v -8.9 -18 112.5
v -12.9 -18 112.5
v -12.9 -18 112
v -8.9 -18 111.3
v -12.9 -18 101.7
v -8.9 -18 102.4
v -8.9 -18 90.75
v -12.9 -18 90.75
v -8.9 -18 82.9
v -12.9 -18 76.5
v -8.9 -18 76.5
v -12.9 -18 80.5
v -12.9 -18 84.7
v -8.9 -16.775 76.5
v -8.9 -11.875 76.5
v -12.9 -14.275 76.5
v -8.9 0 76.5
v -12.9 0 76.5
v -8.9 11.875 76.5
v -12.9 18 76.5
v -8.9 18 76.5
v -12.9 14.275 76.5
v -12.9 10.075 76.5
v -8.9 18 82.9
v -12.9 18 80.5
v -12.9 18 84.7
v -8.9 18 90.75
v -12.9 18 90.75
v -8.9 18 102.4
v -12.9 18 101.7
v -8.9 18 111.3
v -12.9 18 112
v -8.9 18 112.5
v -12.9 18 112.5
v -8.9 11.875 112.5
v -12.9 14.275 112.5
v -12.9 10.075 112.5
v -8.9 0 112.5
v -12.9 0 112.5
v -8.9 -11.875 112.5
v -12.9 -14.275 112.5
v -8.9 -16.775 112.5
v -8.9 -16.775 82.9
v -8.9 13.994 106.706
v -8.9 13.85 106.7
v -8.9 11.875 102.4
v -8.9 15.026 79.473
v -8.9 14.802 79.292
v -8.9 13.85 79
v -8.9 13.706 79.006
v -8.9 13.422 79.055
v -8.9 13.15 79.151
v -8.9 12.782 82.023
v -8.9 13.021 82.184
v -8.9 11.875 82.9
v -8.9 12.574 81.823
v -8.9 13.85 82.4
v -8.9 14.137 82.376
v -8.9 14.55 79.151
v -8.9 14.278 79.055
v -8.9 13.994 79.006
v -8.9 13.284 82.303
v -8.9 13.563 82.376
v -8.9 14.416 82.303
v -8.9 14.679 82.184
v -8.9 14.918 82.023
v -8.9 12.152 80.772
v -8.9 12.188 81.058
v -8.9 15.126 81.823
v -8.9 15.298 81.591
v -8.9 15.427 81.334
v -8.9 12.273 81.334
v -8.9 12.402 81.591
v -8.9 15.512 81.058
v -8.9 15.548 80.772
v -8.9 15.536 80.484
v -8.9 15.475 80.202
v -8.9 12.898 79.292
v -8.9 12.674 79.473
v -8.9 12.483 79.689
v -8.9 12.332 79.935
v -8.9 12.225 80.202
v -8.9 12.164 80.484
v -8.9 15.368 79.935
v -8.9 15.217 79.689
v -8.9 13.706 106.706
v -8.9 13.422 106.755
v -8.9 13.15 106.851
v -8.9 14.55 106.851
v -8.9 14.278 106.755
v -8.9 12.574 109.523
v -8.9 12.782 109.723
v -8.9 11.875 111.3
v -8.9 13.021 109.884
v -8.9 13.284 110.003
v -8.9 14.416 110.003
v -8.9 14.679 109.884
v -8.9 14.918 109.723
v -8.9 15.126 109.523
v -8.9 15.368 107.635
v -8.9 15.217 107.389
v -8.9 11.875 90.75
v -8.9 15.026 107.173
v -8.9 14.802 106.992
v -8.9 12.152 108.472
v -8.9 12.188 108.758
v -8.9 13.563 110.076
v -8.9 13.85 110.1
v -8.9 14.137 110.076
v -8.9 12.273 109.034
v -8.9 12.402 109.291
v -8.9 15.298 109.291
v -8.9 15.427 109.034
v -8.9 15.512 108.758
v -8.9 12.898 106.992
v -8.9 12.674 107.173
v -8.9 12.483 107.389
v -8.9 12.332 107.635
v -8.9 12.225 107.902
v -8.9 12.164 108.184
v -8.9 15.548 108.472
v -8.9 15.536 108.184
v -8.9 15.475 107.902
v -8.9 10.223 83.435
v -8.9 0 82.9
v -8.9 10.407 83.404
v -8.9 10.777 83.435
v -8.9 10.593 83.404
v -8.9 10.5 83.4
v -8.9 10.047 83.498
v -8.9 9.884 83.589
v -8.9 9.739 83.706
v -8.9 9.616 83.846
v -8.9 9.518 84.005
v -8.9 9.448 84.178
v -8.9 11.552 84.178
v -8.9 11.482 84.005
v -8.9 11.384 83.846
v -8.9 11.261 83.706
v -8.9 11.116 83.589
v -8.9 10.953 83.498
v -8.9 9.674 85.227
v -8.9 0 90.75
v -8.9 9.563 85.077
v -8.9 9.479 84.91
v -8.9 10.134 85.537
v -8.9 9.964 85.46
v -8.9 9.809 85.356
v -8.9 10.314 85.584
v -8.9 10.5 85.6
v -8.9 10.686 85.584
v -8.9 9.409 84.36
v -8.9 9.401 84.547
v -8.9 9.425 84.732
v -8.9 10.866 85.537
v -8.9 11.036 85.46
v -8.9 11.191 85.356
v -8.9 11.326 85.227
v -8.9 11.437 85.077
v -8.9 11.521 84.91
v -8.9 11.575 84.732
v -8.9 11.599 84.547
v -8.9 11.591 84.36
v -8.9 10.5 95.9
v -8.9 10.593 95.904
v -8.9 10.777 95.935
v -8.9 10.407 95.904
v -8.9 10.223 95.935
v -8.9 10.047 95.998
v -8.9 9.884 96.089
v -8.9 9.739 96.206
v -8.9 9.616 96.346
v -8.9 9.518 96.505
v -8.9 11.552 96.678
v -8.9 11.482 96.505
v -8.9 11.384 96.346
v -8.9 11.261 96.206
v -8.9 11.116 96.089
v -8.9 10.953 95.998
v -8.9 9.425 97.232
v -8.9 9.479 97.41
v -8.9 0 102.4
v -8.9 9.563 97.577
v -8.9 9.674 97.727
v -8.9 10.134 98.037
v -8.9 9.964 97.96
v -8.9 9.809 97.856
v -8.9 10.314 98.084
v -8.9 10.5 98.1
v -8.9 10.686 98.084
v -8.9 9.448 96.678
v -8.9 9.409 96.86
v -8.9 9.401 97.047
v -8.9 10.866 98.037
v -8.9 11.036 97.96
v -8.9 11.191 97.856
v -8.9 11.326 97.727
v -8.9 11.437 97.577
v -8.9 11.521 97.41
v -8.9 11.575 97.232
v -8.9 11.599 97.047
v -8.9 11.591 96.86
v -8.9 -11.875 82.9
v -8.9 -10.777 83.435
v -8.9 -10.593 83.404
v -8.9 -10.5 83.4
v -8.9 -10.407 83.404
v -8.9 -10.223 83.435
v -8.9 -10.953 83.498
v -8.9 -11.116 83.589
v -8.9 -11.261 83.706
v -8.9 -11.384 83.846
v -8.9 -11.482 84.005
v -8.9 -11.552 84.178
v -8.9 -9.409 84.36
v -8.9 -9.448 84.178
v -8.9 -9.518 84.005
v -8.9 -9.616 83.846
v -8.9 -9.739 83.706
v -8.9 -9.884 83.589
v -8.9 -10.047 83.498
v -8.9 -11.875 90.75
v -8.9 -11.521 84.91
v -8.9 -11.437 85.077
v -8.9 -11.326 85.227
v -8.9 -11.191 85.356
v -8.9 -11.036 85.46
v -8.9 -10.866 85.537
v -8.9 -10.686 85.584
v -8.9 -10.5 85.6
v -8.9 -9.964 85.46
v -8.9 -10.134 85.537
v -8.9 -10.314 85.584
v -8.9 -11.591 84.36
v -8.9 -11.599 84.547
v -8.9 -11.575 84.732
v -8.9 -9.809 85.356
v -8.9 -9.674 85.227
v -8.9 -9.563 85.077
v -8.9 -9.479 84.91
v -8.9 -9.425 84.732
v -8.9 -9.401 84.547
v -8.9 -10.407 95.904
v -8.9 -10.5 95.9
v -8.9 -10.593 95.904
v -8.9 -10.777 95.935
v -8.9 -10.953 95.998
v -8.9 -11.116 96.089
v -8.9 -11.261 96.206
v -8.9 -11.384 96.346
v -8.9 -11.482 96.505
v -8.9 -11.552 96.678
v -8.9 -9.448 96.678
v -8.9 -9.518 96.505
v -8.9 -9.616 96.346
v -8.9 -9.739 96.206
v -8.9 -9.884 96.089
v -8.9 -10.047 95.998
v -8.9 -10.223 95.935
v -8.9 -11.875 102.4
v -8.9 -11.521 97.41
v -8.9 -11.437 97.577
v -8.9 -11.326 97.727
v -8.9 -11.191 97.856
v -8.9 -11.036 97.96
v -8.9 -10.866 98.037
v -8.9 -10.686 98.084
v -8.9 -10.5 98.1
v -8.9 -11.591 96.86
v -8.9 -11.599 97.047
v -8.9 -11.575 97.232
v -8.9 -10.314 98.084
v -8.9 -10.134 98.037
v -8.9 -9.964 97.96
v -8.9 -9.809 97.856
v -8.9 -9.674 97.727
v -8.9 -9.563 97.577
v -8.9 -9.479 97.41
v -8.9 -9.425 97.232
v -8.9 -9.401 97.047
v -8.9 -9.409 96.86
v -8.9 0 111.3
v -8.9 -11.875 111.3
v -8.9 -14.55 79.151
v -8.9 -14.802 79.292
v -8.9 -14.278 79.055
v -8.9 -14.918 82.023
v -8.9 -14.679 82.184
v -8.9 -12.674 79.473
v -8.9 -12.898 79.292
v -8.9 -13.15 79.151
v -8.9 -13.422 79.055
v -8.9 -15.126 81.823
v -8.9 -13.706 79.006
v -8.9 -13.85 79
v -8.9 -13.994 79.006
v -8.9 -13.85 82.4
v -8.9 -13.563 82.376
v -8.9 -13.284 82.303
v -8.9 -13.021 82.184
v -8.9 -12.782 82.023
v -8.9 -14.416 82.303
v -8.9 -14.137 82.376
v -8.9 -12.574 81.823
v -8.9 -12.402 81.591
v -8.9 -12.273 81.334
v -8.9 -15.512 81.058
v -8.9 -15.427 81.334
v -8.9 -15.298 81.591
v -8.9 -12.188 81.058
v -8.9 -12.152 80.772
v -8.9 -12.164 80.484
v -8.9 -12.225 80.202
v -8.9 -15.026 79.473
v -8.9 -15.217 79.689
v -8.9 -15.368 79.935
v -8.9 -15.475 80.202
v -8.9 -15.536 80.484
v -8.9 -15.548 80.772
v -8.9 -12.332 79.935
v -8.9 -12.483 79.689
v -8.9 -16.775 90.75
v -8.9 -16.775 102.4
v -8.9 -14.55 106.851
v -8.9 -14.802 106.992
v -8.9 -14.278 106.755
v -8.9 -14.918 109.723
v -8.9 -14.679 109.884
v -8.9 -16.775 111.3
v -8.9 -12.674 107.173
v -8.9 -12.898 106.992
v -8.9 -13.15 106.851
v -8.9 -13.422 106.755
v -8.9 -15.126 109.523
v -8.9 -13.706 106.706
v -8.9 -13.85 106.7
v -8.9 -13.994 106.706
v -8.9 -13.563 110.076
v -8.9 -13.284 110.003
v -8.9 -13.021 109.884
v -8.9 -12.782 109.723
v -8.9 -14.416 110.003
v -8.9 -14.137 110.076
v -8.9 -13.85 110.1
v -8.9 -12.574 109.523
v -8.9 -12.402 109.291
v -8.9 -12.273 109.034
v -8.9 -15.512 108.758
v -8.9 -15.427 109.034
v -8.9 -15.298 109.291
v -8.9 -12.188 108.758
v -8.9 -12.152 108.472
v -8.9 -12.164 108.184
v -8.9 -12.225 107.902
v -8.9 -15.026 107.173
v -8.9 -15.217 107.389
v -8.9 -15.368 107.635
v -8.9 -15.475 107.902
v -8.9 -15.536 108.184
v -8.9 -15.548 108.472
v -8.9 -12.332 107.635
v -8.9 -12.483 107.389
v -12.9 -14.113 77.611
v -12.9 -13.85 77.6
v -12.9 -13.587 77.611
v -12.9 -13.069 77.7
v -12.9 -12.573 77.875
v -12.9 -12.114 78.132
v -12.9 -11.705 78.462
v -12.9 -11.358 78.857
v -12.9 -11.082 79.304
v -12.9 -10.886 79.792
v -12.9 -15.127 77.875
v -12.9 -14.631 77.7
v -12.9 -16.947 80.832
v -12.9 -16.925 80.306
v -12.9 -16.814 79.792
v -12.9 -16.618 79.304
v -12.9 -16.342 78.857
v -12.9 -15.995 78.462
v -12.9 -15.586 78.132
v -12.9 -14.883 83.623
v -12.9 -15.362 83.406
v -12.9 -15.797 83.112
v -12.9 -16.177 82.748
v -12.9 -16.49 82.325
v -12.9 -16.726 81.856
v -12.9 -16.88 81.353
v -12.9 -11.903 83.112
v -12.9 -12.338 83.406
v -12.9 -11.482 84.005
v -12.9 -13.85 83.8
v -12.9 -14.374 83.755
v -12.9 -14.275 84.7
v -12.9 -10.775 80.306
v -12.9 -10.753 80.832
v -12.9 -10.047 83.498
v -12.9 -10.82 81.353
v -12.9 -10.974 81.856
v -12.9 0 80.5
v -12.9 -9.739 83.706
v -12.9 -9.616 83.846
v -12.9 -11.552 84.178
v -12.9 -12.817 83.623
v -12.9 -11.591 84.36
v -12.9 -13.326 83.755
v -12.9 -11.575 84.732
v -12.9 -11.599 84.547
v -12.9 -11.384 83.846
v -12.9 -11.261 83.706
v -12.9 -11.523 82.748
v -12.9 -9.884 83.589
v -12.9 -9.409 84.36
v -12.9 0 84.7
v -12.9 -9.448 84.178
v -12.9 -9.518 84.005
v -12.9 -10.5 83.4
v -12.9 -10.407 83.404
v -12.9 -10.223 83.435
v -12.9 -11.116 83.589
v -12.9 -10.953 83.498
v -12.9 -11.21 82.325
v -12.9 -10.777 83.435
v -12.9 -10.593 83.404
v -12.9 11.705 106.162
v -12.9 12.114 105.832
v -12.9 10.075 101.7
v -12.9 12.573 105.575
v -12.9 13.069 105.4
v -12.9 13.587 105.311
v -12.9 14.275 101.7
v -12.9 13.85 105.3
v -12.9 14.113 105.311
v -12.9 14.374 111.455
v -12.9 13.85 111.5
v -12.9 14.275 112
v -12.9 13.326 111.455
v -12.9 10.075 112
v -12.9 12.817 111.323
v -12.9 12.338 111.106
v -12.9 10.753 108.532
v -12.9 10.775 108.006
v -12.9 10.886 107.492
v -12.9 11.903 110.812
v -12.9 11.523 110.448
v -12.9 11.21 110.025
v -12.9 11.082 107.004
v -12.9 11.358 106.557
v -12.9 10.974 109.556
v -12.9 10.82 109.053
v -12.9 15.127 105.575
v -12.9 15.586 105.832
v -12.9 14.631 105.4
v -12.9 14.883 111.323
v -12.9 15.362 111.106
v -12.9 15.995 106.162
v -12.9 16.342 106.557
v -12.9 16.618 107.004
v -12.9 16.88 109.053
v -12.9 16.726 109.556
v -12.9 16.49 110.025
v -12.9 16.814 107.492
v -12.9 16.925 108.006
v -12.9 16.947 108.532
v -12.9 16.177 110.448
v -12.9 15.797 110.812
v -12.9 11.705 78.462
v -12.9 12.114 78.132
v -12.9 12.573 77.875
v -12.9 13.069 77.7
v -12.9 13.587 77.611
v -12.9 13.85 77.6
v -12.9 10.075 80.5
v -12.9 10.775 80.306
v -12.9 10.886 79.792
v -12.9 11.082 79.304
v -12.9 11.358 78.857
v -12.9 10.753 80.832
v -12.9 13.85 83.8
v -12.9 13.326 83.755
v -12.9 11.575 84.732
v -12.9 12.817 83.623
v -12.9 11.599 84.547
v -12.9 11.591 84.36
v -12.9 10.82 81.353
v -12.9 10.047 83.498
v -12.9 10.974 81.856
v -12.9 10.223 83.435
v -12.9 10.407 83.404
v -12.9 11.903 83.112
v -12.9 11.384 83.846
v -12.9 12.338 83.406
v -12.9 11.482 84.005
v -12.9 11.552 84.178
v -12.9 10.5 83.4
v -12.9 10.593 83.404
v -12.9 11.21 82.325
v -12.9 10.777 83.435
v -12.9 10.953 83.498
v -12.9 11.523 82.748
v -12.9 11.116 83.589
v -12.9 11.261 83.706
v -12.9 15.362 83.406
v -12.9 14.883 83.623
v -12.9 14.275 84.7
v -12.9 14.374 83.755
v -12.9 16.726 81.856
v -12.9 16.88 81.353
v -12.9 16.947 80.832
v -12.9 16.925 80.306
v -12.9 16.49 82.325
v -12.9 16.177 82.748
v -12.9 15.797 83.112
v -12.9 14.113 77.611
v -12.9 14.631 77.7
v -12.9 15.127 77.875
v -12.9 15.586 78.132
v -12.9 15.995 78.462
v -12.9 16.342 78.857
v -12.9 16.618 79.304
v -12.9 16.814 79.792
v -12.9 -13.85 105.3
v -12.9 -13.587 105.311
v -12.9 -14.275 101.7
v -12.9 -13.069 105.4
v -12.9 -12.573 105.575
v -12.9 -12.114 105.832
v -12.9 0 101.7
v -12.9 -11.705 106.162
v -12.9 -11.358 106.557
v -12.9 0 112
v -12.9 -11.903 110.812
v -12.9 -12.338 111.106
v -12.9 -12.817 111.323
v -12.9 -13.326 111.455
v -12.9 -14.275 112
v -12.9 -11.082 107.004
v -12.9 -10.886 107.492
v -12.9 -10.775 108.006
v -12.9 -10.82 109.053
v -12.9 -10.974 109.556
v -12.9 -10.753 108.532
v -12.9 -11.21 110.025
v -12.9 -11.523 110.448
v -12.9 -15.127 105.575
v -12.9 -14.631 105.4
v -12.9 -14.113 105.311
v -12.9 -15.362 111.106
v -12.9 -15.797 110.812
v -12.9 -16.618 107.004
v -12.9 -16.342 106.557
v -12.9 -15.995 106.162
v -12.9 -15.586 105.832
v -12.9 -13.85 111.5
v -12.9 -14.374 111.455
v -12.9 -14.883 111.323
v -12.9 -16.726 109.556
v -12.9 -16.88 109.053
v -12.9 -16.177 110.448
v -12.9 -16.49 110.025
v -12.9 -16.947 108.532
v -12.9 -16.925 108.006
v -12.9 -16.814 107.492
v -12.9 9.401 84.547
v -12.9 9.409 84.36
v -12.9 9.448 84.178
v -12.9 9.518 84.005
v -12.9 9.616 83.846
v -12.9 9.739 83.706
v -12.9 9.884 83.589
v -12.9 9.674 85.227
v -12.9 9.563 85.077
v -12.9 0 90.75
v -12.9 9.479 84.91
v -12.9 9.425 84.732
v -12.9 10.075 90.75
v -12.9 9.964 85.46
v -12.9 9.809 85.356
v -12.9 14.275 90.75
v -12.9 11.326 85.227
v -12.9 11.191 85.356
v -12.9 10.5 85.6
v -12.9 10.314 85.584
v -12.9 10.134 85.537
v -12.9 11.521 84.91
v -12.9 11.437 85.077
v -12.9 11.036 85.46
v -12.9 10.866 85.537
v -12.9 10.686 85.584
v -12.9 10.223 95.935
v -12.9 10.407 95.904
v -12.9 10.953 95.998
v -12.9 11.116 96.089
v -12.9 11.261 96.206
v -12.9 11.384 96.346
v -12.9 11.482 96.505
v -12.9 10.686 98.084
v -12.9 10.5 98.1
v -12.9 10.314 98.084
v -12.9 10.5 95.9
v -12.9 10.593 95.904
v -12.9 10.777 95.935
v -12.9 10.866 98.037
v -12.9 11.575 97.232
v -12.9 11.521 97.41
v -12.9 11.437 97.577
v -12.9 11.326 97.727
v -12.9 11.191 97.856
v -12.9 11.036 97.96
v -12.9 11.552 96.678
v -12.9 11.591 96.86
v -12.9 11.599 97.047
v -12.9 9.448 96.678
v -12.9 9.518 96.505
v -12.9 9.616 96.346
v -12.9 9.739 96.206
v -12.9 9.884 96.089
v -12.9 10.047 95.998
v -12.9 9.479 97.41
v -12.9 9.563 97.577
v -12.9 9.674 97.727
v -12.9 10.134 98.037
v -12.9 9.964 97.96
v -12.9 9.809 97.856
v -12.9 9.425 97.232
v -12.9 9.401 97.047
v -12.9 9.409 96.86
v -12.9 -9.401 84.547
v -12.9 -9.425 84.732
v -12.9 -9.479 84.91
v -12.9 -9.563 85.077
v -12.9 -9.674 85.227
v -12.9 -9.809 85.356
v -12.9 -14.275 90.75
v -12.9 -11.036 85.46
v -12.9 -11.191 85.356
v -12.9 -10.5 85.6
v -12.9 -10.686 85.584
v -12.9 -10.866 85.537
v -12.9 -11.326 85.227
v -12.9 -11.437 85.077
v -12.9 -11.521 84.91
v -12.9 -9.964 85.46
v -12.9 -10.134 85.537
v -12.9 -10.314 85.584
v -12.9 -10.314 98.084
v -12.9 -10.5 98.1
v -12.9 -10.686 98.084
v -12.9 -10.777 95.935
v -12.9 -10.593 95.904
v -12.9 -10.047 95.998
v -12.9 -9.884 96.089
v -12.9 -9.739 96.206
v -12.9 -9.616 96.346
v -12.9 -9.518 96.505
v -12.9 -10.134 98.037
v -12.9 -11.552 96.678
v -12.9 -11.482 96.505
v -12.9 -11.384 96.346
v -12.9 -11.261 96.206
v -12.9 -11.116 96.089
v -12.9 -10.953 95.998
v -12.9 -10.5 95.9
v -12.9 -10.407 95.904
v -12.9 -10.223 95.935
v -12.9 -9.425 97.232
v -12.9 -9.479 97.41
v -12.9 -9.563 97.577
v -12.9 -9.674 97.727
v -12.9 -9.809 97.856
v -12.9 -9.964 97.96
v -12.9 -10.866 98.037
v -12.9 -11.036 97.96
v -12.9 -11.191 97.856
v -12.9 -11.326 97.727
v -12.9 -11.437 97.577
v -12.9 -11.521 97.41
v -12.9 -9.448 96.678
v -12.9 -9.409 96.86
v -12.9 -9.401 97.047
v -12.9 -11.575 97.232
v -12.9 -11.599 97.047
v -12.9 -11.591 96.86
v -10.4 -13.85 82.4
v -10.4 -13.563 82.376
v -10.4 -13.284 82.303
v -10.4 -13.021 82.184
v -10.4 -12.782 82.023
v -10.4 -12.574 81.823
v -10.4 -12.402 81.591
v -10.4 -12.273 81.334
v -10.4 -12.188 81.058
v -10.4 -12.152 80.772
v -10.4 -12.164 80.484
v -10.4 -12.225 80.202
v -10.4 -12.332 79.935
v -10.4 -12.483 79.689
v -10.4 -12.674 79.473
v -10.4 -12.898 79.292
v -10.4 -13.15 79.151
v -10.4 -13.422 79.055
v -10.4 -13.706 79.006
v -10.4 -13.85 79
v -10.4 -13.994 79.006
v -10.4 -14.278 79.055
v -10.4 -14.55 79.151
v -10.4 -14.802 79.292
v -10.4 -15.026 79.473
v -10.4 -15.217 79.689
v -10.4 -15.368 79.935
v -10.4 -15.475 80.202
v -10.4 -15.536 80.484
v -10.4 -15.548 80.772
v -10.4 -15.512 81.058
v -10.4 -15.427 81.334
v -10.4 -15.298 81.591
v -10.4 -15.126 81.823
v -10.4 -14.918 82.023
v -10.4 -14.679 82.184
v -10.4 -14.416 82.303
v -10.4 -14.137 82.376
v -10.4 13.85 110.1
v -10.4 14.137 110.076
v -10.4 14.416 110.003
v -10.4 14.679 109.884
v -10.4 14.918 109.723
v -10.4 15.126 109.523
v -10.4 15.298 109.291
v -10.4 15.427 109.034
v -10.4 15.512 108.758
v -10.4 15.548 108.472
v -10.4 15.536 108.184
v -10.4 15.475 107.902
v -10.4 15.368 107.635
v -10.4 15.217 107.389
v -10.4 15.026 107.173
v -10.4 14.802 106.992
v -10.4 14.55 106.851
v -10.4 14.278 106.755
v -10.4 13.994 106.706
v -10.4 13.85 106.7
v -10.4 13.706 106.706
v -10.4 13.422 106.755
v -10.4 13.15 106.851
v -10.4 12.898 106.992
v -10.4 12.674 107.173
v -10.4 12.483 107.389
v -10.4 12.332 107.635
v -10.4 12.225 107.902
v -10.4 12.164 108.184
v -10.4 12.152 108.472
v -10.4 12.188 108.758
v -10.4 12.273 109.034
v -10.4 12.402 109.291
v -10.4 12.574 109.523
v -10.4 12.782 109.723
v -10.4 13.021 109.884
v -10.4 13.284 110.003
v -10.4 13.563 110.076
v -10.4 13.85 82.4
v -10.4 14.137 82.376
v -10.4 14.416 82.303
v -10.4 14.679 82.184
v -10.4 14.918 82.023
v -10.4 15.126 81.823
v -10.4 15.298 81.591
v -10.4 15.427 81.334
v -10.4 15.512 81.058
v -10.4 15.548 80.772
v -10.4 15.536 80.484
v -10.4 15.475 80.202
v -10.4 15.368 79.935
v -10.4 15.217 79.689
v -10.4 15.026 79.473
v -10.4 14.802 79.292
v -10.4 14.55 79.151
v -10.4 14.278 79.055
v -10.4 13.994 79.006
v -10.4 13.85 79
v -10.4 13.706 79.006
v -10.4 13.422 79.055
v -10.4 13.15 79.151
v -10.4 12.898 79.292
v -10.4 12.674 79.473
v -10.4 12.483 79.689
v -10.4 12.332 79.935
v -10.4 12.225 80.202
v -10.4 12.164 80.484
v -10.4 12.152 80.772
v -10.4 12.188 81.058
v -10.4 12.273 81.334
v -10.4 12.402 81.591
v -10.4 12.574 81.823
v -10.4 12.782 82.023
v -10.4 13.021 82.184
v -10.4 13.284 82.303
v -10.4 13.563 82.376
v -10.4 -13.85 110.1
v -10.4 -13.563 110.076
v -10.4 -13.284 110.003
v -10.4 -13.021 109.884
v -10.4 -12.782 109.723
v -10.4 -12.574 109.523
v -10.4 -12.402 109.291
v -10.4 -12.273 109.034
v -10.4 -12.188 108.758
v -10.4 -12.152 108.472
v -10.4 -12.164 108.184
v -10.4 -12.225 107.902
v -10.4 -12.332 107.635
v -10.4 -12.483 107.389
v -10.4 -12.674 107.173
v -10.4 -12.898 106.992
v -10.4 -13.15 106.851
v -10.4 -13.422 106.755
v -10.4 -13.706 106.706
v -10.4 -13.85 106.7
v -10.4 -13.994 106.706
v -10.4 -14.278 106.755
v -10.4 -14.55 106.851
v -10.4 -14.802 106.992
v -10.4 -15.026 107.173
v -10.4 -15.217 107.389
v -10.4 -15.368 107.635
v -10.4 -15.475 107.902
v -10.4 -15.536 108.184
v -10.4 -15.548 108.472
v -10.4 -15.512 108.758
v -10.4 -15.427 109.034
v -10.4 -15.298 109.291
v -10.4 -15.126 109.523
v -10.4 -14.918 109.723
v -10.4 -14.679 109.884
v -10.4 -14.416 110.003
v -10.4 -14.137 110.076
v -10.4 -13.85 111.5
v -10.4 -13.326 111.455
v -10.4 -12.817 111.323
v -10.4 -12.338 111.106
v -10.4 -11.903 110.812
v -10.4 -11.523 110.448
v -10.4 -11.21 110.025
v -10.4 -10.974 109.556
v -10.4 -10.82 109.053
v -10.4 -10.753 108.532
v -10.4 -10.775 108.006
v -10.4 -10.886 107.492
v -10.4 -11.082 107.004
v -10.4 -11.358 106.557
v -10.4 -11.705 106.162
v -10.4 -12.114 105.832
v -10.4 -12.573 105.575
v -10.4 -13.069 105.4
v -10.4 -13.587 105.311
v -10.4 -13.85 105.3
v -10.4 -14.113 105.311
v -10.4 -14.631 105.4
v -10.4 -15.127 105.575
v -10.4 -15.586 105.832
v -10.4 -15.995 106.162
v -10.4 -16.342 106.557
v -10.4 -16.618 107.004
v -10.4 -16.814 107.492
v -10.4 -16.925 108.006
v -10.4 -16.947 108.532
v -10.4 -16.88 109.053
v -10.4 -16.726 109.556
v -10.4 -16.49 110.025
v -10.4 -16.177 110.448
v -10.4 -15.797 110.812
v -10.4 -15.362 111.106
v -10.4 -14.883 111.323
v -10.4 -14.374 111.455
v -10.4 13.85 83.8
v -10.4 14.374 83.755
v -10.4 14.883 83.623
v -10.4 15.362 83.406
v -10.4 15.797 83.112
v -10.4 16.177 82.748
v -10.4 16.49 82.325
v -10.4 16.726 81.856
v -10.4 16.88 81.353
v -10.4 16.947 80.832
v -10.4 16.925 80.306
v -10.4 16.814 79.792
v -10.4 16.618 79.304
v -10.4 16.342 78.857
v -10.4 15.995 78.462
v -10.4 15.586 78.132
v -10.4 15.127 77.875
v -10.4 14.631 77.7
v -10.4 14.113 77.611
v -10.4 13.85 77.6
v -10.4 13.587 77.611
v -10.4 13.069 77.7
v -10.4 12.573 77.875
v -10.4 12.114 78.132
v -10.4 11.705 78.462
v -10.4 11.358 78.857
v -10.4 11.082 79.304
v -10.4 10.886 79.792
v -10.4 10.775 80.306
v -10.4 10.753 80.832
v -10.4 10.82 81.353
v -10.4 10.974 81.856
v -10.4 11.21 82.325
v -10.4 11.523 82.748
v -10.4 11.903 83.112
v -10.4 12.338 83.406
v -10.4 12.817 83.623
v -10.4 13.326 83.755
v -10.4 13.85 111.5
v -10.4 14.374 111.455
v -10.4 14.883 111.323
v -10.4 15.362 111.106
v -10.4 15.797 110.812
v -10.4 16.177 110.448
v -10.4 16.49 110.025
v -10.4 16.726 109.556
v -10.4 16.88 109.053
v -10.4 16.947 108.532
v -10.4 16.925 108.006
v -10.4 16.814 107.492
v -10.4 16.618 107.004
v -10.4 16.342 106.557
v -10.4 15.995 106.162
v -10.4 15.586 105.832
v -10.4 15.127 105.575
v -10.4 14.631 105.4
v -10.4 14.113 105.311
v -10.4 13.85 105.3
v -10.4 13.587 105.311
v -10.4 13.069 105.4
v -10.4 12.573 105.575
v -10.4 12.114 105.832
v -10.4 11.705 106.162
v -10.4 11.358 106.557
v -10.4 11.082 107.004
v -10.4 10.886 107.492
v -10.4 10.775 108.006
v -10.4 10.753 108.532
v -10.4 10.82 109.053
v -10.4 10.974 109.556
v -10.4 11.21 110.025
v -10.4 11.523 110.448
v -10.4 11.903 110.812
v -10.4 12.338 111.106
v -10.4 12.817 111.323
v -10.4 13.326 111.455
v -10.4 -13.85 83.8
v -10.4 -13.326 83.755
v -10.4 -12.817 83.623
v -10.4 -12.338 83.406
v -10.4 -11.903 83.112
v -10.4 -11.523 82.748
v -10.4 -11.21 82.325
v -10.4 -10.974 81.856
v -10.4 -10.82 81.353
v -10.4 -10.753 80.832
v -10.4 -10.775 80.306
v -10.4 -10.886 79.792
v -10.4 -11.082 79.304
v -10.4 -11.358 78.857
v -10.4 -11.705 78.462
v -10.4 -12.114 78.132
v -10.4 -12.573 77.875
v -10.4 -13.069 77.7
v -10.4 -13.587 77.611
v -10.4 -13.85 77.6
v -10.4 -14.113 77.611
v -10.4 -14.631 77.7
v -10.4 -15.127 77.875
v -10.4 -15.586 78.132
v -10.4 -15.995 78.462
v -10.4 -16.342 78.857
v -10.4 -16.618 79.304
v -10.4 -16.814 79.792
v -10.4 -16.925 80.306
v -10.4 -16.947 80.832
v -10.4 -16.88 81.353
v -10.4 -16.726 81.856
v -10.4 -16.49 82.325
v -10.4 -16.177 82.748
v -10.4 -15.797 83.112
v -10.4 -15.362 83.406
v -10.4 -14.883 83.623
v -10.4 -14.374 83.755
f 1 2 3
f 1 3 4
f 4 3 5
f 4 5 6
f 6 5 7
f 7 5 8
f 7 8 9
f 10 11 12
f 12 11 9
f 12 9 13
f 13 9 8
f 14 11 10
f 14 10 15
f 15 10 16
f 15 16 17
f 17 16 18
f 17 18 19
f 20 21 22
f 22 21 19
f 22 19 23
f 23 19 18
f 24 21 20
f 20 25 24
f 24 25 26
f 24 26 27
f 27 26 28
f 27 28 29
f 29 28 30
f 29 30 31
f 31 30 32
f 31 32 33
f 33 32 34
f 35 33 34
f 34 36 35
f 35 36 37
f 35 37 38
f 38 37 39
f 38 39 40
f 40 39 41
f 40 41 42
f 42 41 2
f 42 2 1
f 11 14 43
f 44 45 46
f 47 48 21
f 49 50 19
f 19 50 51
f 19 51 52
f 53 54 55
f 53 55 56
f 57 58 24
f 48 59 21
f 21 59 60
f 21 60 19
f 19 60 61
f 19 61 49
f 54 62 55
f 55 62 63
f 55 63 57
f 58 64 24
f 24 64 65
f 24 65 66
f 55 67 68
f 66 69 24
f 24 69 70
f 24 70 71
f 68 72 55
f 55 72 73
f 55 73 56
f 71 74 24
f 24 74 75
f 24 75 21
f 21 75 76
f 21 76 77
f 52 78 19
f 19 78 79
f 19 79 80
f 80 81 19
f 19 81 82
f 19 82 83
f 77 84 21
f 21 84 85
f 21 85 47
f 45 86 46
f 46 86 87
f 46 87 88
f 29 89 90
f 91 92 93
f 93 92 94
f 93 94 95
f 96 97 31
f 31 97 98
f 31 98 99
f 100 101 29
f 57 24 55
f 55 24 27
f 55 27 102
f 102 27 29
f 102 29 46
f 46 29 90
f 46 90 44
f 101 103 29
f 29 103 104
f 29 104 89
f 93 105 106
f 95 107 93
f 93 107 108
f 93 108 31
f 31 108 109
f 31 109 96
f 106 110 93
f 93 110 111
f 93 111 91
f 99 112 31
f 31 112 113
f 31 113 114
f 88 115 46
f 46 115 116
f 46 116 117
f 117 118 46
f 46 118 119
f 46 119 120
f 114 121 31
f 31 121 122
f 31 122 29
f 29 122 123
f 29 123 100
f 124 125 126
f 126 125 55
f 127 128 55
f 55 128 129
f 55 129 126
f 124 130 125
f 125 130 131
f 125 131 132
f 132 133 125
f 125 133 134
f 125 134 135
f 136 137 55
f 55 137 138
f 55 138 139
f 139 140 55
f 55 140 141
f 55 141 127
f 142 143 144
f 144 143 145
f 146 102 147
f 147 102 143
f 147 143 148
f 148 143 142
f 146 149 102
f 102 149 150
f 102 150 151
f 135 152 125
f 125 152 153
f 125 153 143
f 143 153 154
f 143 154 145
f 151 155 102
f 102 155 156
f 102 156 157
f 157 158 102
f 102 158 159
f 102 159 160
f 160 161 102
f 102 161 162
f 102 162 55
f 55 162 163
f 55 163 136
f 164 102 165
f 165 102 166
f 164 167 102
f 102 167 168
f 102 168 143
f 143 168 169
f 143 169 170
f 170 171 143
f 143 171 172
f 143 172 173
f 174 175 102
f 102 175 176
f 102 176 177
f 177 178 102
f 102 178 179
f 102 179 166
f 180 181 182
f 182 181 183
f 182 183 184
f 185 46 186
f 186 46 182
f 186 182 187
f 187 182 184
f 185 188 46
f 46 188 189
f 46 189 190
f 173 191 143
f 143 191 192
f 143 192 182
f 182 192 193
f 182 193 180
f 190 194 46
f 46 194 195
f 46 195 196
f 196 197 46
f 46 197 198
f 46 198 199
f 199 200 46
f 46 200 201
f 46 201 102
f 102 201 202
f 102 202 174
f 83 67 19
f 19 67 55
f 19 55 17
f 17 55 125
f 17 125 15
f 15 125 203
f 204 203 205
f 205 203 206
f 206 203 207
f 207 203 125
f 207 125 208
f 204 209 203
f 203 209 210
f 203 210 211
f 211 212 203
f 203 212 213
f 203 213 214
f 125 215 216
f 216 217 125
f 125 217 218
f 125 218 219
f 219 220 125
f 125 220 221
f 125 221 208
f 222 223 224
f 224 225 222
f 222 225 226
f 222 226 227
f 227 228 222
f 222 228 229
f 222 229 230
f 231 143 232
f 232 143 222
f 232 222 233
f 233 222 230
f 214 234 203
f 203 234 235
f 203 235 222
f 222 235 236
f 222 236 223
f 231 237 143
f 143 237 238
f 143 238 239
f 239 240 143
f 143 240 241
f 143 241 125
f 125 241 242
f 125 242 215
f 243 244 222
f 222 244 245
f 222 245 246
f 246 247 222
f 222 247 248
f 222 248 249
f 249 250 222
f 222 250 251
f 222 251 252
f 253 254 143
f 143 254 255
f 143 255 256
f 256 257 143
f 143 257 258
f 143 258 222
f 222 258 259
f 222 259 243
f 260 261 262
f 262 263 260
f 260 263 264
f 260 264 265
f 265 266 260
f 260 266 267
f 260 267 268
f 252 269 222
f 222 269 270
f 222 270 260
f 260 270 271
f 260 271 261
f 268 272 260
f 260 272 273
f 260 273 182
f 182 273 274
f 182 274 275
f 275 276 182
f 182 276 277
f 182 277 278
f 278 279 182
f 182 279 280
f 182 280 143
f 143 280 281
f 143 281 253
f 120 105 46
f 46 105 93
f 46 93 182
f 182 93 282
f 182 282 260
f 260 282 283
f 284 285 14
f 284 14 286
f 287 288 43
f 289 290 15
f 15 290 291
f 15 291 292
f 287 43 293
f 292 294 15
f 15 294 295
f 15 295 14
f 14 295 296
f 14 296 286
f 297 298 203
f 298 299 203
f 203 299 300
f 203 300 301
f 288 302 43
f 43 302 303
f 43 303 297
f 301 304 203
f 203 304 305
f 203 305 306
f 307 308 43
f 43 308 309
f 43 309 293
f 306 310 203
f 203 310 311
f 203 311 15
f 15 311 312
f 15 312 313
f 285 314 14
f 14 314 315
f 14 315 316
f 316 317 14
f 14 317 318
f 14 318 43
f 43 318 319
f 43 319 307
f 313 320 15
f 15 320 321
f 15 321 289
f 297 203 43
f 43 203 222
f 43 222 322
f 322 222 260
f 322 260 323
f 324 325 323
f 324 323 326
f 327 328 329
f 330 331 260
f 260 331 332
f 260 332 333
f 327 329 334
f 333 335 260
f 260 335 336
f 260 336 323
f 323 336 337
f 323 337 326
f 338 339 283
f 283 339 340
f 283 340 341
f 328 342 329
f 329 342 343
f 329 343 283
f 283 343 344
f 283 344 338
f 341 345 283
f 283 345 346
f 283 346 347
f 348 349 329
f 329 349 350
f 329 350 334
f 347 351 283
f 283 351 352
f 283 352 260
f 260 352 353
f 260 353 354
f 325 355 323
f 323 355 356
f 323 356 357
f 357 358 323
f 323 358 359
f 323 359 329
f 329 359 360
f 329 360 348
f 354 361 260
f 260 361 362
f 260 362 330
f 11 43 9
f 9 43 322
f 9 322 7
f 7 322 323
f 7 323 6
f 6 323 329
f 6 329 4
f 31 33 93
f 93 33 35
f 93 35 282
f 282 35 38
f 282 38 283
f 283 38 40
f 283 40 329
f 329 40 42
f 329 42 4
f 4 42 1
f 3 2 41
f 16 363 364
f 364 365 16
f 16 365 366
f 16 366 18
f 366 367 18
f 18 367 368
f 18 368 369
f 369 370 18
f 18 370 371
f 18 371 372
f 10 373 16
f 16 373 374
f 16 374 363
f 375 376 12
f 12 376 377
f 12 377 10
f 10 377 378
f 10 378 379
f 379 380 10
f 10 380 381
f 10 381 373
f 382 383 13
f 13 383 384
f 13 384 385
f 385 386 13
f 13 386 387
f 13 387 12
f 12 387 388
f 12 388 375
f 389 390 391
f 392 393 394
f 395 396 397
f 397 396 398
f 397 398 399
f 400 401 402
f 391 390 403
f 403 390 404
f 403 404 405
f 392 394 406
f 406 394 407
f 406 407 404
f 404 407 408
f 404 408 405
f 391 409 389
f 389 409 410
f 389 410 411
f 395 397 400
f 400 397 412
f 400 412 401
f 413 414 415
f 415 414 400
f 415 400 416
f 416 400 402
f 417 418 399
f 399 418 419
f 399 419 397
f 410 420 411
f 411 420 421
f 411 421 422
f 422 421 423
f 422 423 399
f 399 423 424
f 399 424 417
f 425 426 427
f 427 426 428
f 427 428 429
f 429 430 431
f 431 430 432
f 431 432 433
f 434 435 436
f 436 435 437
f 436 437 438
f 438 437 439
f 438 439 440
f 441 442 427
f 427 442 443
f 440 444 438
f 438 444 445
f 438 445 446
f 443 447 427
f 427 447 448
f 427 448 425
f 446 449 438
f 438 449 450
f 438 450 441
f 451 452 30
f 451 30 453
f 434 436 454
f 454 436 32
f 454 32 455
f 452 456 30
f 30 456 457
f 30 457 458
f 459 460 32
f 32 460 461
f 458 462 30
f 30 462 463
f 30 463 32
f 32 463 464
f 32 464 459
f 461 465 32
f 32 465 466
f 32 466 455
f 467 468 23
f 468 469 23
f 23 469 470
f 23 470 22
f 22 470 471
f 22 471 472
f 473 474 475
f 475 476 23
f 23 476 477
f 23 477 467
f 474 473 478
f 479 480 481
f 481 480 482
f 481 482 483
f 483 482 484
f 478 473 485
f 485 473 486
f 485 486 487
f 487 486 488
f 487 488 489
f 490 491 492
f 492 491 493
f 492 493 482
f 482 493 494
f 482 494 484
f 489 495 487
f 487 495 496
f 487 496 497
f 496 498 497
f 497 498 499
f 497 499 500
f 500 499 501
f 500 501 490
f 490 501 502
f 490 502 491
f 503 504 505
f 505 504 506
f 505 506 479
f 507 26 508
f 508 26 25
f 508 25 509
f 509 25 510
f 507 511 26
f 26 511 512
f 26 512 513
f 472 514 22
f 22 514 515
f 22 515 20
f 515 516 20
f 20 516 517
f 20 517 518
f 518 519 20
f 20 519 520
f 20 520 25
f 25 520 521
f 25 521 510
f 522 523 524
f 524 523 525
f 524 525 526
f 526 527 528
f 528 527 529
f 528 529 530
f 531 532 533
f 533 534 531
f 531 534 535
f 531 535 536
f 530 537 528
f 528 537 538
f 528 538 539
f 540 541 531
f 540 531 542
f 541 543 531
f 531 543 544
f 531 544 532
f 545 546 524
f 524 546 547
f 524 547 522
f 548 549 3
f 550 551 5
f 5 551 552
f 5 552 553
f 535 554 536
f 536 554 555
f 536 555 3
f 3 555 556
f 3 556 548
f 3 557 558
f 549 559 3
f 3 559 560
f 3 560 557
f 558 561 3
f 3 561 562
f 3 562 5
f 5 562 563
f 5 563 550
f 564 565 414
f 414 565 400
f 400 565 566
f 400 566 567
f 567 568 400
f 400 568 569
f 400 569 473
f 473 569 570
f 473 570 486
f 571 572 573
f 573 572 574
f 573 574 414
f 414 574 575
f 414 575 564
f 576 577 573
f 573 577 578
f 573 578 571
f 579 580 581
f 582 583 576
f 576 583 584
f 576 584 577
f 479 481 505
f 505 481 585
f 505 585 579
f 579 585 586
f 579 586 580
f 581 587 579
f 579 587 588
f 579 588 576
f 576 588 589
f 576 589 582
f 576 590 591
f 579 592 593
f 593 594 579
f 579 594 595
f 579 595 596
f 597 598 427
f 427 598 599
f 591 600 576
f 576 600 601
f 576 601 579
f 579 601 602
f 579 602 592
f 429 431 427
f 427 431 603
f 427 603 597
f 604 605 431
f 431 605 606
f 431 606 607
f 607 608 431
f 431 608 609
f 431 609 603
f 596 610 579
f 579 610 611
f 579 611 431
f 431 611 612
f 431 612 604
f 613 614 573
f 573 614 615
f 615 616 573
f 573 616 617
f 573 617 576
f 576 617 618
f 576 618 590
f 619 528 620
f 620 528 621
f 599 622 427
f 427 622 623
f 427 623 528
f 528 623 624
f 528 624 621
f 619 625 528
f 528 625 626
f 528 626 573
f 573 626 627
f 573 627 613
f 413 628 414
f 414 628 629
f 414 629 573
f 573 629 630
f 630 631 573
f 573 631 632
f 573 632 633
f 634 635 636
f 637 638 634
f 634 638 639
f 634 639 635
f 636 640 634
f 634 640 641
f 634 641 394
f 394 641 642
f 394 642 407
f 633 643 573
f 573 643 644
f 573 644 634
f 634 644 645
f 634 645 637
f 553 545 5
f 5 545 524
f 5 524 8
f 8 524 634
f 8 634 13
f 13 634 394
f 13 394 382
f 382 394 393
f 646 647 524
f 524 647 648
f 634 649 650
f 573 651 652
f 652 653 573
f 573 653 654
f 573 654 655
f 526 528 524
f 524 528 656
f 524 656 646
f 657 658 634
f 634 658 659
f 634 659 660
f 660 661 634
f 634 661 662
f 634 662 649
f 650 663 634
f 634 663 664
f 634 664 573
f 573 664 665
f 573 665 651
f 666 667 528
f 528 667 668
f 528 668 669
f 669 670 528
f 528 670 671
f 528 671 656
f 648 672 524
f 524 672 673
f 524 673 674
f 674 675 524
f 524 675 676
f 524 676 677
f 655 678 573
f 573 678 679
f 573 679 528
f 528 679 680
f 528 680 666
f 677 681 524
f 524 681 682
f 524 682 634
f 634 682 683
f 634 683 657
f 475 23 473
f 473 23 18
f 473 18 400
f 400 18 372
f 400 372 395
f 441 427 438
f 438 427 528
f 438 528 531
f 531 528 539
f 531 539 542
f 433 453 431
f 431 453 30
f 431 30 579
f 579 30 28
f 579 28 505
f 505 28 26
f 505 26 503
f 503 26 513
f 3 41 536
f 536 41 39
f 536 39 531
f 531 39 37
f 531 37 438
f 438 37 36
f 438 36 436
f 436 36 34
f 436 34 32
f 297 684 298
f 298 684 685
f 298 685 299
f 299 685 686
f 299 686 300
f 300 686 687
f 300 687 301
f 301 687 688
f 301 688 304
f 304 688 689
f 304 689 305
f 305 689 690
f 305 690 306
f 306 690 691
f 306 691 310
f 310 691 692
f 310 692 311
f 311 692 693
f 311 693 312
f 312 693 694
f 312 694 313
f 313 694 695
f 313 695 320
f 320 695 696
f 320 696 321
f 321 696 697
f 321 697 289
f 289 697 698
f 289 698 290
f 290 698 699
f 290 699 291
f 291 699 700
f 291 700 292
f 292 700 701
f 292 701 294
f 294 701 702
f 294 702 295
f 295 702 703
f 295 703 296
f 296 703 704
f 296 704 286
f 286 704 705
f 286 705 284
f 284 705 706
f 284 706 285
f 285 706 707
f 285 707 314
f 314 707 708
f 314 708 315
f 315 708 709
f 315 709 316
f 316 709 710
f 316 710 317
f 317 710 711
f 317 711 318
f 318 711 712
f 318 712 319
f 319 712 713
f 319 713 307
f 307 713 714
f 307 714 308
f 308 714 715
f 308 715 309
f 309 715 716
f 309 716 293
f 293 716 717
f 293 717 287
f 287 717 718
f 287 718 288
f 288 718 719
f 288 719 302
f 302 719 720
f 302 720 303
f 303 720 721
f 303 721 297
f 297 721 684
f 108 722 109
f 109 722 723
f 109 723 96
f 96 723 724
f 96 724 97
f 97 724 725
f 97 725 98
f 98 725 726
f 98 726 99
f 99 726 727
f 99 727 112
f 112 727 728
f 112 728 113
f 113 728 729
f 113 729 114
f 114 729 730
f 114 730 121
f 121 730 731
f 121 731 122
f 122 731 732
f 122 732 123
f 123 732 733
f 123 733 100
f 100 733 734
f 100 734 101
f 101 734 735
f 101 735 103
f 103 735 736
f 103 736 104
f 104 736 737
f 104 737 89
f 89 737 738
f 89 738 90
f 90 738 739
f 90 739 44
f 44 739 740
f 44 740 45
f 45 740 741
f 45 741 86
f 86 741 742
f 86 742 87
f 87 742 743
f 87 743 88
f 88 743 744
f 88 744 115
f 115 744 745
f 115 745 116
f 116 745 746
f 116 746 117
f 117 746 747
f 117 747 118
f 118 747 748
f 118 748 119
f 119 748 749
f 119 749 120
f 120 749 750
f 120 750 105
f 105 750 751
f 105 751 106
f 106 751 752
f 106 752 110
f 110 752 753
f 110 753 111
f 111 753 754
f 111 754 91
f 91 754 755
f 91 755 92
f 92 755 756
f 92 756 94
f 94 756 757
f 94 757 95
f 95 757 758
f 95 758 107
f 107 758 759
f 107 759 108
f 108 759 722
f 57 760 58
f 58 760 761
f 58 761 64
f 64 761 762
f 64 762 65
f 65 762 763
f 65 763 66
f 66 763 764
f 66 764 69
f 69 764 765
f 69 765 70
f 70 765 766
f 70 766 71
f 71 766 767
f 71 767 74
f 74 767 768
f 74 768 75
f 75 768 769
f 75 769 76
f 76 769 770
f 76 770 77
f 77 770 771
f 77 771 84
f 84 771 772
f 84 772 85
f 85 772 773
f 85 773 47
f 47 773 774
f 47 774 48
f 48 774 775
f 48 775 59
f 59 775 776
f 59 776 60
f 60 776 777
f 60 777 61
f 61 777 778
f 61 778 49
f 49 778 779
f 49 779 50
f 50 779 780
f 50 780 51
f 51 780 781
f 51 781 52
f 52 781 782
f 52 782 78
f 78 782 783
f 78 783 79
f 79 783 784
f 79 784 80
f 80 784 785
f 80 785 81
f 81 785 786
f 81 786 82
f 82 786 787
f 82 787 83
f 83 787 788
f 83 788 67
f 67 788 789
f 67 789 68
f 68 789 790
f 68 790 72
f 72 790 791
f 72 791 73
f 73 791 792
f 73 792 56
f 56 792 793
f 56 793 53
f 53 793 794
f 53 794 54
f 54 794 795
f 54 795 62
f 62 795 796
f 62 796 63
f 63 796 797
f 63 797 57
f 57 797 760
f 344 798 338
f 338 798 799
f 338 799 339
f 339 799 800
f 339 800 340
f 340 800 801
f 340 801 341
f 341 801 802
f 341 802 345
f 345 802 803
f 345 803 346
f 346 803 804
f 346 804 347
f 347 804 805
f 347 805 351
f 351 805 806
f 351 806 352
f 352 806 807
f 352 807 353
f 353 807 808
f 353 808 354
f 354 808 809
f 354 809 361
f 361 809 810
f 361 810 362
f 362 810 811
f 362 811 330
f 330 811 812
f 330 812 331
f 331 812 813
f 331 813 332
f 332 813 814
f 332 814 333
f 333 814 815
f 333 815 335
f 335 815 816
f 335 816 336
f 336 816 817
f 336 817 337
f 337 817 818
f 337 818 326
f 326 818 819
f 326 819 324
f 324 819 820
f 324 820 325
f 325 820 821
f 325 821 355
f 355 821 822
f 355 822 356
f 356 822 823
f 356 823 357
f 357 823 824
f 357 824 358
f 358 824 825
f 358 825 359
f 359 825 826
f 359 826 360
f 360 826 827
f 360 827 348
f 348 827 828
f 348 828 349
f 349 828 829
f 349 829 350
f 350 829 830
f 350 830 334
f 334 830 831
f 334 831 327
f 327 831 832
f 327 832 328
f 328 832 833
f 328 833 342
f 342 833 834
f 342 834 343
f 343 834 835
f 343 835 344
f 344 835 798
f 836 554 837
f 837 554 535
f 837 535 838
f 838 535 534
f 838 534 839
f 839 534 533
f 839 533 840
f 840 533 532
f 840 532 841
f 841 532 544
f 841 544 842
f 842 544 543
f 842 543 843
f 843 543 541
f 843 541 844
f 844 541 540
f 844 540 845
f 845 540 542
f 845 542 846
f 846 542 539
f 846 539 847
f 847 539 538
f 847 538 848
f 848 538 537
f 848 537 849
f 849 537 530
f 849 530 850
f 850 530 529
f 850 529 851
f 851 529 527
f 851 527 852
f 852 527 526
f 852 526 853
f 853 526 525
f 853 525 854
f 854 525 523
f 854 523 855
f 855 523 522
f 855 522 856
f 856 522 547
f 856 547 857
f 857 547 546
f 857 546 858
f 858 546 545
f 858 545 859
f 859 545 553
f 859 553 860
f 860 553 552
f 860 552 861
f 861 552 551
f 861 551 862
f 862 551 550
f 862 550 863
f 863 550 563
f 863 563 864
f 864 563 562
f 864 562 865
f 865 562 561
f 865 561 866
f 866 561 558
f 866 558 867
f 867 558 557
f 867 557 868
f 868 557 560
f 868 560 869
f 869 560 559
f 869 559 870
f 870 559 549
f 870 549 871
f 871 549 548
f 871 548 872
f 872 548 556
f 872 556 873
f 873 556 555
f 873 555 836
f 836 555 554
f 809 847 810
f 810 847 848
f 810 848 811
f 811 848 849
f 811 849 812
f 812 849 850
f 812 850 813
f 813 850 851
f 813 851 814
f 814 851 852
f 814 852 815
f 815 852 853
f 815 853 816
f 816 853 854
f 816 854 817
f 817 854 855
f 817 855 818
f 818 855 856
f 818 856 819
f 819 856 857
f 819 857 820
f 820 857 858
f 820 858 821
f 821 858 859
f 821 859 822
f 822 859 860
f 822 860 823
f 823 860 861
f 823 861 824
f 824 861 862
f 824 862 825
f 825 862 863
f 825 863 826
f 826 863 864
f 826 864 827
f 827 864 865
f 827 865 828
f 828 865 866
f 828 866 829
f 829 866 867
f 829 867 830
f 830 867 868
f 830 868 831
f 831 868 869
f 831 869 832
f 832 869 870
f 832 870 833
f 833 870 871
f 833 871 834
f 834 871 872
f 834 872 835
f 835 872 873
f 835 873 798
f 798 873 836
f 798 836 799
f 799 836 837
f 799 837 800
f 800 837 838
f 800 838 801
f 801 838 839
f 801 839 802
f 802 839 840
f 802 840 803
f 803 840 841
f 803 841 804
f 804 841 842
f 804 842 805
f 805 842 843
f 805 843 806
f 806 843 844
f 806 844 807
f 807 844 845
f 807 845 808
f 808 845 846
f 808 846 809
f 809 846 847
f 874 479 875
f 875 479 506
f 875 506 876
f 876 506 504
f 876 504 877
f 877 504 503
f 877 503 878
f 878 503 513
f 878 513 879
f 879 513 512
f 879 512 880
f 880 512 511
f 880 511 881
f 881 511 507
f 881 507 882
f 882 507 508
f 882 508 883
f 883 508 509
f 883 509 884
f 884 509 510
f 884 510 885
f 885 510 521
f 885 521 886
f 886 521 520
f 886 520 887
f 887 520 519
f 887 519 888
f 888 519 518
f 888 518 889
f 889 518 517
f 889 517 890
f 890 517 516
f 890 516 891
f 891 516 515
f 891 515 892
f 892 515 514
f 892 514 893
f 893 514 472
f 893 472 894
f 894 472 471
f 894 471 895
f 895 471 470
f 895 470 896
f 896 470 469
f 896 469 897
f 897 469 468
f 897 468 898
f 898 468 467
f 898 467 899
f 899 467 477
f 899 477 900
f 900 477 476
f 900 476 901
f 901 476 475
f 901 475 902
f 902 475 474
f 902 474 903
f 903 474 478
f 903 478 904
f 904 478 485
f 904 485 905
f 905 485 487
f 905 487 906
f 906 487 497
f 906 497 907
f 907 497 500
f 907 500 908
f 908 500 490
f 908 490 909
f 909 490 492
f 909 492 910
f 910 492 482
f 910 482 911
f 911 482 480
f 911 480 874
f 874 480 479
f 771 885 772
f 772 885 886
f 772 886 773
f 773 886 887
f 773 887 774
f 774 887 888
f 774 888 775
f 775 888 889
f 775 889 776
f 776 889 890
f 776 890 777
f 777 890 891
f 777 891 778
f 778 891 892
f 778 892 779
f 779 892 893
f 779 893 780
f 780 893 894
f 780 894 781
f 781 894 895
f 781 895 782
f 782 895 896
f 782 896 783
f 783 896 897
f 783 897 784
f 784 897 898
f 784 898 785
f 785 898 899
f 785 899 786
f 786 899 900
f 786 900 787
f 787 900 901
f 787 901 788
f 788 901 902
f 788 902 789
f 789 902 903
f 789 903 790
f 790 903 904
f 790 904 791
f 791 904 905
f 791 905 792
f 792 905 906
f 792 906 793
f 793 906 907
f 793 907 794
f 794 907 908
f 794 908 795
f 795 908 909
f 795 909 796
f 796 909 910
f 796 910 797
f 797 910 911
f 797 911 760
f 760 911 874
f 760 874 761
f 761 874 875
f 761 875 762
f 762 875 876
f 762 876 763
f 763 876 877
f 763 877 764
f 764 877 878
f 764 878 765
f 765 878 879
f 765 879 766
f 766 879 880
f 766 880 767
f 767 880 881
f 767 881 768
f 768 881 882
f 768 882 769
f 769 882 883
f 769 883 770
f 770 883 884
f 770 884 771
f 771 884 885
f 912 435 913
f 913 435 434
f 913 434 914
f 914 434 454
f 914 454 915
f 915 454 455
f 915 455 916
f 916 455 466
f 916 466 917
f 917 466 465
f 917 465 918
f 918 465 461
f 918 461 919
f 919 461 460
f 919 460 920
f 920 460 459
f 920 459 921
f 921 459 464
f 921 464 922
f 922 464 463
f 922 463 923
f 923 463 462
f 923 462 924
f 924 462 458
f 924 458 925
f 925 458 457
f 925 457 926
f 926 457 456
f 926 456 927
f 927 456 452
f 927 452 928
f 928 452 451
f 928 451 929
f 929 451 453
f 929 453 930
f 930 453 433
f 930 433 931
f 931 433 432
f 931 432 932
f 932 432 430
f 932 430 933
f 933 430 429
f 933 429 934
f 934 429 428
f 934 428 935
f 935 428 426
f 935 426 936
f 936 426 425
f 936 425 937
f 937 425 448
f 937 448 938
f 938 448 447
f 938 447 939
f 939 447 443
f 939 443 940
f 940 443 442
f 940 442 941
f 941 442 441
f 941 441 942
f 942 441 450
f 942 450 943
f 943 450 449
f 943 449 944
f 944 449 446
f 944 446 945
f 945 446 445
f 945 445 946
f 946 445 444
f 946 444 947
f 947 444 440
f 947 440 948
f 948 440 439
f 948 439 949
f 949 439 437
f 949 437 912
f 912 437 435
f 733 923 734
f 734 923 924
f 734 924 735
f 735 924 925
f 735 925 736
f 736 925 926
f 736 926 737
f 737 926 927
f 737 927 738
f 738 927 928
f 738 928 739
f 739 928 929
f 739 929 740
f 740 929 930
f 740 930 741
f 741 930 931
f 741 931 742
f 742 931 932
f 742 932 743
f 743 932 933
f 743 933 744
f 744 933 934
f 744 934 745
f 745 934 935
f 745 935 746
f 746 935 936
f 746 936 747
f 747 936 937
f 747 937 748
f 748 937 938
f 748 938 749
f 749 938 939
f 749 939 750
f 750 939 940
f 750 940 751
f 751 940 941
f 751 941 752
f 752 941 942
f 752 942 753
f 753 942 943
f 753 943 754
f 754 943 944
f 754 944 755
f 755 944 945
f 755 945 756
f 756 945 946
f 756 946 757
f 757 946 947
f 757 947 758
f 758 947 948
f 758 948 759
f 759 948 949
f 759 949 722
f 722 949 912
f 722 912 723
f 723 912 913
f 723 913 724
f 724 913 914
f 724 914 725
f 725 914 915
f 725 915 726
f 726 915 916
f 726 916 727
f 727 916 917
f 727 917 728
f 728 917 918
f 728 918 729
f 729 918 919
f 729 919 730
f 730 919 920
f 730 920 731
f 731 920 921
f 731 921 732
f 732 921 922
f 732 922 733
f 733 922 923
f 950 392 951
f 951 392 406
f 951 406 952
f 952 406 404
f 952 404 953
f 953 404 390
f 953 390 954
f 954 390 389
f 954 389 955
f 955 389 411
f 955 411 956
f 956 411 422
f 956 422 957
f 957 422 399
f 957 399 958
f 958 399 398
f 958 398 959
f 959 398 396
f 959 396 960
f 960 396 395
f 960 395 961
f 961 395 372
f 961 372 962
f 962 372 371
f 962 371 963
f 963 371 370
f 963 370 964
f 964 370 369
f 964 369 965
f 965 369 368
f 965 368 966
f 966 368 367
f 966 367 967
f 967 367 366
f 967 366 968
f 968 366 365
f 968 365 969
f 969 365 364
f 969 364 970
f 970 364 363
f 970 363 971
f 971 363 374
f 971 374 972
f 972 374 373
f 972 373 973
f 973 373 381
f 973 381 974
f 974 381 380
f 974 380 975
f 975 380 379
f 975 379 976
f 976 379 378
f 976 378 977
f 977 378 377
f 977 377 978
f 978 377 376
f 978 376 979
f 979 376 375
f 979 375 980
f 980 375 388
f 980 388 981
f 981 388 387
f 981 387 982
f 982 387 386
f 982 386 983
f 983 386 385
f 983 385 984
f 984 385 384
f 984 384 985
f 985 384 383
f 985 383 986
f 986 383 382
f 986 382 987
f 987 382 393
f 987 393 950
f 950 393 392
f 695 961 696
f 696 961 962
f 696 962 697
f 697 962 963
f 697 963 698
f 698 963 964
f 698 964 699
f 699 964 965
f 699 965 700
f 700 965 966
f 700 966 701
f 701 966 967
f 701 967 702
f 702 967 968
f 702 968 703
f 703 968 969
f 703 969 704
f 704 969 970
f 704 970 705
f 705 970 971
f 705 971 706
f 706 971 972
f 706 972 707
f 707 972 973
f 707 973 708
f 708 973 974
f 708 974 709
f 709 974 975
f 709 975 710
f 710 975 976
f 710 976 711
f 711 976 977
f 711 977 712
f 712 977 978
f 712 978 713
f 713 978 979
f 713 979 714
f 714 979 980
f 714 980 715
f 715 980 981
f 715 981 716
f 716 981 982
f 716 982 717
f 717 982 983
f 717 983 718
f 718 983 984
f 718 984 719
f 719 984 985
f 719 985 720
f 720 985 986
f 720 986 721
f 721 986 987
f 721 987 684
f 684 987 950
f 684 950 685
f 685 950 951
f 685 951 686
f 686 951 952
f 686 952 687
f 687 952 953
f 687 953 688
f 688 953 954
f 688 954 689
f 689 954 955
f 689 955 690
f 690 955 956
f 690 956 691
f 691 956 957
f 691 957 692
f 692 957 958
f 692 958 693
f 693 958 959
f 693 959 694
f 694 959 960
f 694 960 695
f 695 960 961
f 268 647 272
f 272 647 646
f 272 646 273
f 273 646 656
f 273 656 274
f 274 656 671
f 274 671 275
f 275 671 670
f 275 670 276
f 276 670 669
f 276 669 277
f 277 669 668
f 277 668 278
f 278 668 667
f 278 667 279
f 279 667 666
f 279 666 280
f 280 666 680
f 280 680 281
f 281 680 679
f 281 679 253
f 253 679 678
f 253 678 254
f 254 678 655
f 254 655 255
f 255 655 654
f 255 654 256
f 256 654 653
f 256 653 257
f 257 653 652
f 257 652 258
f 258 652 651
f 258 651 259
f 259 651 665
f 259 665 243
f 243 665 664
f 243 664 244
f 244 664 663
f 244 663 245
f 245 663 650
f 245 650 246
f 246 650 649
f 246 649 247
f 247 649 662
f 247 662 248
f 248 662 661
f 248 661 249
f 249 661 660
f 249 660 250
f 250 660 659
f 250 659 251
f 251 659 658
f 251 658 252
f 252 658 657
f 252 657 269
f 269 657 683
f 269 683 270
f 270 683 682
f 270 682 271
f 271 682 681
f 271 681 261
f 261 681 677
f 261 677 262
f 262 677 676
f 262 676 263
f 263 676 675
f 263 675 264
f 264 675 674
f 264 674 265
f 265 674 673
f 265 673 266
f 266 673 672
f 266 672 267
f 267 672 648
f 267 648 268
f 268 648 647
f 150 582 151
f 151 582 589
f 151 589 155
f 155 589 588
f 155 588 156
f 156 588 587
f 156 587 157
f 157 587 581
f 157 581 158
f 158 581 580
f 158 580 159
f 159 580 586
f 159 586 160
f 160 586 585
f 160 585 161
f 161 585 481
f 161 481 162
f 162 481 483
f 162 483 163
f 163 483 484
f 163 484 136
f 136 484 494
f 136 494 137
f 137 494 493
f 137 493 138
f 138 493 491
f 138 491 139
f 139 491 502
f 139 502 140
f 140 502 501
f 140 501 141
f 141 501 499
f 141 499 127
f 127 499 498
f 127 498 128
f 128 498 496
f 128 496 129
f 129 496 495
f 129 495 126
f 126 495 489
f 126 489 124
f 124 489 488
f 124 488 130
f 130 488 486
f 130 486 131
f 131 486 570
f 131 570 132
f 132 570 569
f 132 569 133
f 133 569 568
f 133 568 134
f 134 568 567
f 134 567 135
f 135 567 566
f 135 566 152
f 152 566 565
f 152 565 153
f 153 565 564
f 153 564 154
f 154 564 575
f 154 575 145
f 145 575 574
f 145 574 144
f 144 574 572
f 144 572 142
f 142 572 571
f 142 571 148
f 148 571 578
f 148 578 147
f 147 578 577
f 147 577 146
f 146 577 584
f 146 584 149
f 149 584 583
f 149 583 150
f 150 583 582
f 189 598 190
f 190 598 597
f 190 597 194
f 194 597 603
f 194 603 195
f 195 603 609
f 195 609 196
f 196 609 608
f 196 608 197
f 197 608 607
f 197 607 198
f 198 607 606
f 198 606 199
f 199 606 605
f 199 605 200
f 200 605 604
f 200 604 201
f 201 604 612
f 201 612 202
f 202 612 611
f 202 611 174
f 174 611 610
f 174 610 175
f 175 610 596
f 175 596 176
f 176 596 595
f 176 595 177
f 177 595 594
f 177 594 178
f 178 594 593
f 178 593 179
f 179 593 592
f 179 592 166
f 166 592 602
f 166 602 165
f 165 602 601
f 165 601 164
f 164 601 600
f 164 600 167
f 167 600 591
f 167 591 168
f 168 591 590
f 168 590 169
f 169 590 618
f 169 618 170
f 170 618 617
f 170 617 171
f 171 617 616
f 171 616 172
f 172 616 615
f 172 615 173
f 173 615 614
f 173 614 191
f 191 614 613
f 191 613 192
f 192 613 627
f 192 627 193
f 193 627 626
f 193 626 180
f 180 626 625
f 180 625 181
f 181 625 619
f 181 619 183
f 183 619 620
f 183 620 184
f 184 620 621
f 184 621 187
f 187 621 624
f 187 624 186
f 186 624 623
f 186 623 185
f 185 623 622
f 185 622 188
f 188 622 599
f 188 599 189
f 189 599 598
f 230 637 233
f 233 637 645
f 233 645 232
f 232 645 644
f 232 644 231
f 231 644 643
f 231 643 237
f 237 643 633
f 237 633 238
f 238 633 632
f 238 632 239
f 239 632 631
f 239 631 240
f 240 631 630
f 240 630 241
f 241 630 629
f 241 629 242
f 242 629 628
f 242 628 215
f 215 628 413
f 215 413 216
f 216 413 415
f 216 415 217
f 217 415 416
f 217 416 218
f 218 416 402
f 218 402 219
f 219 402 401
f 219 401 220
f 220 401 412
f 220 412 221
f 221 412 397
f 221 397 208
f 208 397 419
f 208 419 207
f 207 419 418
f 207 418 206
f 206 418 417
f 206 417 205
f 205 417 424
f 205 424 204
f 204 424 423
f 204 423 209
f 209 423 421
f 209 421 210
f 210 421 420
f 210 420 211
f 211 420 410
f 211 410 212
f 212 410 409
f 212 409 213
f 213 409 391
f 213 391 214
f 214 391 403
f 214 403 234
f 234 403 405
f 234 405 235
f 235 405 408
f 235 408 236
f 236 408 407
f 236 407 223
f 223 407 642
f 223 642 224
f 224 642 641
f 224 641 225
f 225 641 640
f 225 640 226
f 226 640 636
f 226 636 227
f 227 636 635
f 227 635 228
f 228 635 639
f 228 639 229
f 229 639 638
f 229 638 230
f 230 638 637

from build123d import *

# Parameters (mm, degrees)
CROQUIS1_W              = 36
CROQUIS1_H              = 36
SALIENTE_EXTRUIR1_DEPTH = 4
CROQUIS2_R              = 1.7
CORTAR_EXTRUIR1_DEPTH   = 6
CROQUIS3_R              = 3.1
CORTAR_EXTRUIR2_DEPTH   = 3.5
CROQUIS4_R              = 1.1
CORTAR_EXTRUIR3_DEPTH   = 6


with BuildPart() as part:
    # Croquis1 → Saliente-Extruir1 (new body)
    with BuildSketch(Plane(origin=(-12.9, 0, 0), x_dir=(0, 0, -1), z_dir=(1, 0, 0))):
        with Locations((-94.5, 0)):
            Rectangle(CROQUIS1_W, CROQUIS1_H)
    extrude(amount=SALIENTE_EXTRUIR1_DEPTH)

    # Croquis2 → Cortar-Extruir1 (cut)
    with BuildSketch(Plane(origin=(-13.9, 0, 0), x_dir=(0, 0, -1), z_dir=(1, 0, 0))):
        with Locations((-80.7, -13.85)):
            Circle(CROQUIS2_R)
        with Locations((-108.4, -13.85)):
            Circle(CROQUIS2_R)
        with Locations((-80.7, 13.85)):
            Circle(CROQUIS2_R)
        with Locations((-108.4, 13.85)):
            Circle(CROQUIS2_R)
    extrude(amount=CORTAR_EXTRUIR1_DEPTH, mode=Mode.SUBTRACT)

    # Croquis3 → Cortar-Extruir2 (cut)
    with BuildSketch(Plane(origin=(-13.9, 0, 0), x_dir=(0, 0, -1), z_dir=(1, 0, 0))):
        with Locations((-80.7, -13.85)):
            Circle(CROQUIS3_R)
        with Locations((-108.4, -13.85)):
            Circle(CROQUIS3_R)
        with Locations((-80.7, 13.85)):
            Circle(CROQUIS3_R)
        with Locations((-108.4, 13.85)):
            Circle(CROQUIS3_R)
    extrude(amount=CORTAR_EXTRUIR2_DEPTH, mode=Mode.SUBTRACT)

    # Croquis4 → Cortar-Extruir3 (cut)
    with BuildSketch(Plane(origin=(-13.9, 0, 0), x_dir=(0, 0, -1), z_dir=(1, 0, 0))):
        with Locations((-97, -10.5)):
            Circle(CROQUIS4_R)
        with Locations((-84.5, -10.5)):
            Circle(CROQUIS4_R)
        with Locations((-97, 10.5)):
            Circle(CROQUIS4_R)
        with Locations((-84.5, 10.5)):
            Circle(CROQUIS4_R)
    extrude(amount=CORTAR_EXTRUIR3_DEPTH, mode=Mode.SUBTRACT)


solid = part.part
